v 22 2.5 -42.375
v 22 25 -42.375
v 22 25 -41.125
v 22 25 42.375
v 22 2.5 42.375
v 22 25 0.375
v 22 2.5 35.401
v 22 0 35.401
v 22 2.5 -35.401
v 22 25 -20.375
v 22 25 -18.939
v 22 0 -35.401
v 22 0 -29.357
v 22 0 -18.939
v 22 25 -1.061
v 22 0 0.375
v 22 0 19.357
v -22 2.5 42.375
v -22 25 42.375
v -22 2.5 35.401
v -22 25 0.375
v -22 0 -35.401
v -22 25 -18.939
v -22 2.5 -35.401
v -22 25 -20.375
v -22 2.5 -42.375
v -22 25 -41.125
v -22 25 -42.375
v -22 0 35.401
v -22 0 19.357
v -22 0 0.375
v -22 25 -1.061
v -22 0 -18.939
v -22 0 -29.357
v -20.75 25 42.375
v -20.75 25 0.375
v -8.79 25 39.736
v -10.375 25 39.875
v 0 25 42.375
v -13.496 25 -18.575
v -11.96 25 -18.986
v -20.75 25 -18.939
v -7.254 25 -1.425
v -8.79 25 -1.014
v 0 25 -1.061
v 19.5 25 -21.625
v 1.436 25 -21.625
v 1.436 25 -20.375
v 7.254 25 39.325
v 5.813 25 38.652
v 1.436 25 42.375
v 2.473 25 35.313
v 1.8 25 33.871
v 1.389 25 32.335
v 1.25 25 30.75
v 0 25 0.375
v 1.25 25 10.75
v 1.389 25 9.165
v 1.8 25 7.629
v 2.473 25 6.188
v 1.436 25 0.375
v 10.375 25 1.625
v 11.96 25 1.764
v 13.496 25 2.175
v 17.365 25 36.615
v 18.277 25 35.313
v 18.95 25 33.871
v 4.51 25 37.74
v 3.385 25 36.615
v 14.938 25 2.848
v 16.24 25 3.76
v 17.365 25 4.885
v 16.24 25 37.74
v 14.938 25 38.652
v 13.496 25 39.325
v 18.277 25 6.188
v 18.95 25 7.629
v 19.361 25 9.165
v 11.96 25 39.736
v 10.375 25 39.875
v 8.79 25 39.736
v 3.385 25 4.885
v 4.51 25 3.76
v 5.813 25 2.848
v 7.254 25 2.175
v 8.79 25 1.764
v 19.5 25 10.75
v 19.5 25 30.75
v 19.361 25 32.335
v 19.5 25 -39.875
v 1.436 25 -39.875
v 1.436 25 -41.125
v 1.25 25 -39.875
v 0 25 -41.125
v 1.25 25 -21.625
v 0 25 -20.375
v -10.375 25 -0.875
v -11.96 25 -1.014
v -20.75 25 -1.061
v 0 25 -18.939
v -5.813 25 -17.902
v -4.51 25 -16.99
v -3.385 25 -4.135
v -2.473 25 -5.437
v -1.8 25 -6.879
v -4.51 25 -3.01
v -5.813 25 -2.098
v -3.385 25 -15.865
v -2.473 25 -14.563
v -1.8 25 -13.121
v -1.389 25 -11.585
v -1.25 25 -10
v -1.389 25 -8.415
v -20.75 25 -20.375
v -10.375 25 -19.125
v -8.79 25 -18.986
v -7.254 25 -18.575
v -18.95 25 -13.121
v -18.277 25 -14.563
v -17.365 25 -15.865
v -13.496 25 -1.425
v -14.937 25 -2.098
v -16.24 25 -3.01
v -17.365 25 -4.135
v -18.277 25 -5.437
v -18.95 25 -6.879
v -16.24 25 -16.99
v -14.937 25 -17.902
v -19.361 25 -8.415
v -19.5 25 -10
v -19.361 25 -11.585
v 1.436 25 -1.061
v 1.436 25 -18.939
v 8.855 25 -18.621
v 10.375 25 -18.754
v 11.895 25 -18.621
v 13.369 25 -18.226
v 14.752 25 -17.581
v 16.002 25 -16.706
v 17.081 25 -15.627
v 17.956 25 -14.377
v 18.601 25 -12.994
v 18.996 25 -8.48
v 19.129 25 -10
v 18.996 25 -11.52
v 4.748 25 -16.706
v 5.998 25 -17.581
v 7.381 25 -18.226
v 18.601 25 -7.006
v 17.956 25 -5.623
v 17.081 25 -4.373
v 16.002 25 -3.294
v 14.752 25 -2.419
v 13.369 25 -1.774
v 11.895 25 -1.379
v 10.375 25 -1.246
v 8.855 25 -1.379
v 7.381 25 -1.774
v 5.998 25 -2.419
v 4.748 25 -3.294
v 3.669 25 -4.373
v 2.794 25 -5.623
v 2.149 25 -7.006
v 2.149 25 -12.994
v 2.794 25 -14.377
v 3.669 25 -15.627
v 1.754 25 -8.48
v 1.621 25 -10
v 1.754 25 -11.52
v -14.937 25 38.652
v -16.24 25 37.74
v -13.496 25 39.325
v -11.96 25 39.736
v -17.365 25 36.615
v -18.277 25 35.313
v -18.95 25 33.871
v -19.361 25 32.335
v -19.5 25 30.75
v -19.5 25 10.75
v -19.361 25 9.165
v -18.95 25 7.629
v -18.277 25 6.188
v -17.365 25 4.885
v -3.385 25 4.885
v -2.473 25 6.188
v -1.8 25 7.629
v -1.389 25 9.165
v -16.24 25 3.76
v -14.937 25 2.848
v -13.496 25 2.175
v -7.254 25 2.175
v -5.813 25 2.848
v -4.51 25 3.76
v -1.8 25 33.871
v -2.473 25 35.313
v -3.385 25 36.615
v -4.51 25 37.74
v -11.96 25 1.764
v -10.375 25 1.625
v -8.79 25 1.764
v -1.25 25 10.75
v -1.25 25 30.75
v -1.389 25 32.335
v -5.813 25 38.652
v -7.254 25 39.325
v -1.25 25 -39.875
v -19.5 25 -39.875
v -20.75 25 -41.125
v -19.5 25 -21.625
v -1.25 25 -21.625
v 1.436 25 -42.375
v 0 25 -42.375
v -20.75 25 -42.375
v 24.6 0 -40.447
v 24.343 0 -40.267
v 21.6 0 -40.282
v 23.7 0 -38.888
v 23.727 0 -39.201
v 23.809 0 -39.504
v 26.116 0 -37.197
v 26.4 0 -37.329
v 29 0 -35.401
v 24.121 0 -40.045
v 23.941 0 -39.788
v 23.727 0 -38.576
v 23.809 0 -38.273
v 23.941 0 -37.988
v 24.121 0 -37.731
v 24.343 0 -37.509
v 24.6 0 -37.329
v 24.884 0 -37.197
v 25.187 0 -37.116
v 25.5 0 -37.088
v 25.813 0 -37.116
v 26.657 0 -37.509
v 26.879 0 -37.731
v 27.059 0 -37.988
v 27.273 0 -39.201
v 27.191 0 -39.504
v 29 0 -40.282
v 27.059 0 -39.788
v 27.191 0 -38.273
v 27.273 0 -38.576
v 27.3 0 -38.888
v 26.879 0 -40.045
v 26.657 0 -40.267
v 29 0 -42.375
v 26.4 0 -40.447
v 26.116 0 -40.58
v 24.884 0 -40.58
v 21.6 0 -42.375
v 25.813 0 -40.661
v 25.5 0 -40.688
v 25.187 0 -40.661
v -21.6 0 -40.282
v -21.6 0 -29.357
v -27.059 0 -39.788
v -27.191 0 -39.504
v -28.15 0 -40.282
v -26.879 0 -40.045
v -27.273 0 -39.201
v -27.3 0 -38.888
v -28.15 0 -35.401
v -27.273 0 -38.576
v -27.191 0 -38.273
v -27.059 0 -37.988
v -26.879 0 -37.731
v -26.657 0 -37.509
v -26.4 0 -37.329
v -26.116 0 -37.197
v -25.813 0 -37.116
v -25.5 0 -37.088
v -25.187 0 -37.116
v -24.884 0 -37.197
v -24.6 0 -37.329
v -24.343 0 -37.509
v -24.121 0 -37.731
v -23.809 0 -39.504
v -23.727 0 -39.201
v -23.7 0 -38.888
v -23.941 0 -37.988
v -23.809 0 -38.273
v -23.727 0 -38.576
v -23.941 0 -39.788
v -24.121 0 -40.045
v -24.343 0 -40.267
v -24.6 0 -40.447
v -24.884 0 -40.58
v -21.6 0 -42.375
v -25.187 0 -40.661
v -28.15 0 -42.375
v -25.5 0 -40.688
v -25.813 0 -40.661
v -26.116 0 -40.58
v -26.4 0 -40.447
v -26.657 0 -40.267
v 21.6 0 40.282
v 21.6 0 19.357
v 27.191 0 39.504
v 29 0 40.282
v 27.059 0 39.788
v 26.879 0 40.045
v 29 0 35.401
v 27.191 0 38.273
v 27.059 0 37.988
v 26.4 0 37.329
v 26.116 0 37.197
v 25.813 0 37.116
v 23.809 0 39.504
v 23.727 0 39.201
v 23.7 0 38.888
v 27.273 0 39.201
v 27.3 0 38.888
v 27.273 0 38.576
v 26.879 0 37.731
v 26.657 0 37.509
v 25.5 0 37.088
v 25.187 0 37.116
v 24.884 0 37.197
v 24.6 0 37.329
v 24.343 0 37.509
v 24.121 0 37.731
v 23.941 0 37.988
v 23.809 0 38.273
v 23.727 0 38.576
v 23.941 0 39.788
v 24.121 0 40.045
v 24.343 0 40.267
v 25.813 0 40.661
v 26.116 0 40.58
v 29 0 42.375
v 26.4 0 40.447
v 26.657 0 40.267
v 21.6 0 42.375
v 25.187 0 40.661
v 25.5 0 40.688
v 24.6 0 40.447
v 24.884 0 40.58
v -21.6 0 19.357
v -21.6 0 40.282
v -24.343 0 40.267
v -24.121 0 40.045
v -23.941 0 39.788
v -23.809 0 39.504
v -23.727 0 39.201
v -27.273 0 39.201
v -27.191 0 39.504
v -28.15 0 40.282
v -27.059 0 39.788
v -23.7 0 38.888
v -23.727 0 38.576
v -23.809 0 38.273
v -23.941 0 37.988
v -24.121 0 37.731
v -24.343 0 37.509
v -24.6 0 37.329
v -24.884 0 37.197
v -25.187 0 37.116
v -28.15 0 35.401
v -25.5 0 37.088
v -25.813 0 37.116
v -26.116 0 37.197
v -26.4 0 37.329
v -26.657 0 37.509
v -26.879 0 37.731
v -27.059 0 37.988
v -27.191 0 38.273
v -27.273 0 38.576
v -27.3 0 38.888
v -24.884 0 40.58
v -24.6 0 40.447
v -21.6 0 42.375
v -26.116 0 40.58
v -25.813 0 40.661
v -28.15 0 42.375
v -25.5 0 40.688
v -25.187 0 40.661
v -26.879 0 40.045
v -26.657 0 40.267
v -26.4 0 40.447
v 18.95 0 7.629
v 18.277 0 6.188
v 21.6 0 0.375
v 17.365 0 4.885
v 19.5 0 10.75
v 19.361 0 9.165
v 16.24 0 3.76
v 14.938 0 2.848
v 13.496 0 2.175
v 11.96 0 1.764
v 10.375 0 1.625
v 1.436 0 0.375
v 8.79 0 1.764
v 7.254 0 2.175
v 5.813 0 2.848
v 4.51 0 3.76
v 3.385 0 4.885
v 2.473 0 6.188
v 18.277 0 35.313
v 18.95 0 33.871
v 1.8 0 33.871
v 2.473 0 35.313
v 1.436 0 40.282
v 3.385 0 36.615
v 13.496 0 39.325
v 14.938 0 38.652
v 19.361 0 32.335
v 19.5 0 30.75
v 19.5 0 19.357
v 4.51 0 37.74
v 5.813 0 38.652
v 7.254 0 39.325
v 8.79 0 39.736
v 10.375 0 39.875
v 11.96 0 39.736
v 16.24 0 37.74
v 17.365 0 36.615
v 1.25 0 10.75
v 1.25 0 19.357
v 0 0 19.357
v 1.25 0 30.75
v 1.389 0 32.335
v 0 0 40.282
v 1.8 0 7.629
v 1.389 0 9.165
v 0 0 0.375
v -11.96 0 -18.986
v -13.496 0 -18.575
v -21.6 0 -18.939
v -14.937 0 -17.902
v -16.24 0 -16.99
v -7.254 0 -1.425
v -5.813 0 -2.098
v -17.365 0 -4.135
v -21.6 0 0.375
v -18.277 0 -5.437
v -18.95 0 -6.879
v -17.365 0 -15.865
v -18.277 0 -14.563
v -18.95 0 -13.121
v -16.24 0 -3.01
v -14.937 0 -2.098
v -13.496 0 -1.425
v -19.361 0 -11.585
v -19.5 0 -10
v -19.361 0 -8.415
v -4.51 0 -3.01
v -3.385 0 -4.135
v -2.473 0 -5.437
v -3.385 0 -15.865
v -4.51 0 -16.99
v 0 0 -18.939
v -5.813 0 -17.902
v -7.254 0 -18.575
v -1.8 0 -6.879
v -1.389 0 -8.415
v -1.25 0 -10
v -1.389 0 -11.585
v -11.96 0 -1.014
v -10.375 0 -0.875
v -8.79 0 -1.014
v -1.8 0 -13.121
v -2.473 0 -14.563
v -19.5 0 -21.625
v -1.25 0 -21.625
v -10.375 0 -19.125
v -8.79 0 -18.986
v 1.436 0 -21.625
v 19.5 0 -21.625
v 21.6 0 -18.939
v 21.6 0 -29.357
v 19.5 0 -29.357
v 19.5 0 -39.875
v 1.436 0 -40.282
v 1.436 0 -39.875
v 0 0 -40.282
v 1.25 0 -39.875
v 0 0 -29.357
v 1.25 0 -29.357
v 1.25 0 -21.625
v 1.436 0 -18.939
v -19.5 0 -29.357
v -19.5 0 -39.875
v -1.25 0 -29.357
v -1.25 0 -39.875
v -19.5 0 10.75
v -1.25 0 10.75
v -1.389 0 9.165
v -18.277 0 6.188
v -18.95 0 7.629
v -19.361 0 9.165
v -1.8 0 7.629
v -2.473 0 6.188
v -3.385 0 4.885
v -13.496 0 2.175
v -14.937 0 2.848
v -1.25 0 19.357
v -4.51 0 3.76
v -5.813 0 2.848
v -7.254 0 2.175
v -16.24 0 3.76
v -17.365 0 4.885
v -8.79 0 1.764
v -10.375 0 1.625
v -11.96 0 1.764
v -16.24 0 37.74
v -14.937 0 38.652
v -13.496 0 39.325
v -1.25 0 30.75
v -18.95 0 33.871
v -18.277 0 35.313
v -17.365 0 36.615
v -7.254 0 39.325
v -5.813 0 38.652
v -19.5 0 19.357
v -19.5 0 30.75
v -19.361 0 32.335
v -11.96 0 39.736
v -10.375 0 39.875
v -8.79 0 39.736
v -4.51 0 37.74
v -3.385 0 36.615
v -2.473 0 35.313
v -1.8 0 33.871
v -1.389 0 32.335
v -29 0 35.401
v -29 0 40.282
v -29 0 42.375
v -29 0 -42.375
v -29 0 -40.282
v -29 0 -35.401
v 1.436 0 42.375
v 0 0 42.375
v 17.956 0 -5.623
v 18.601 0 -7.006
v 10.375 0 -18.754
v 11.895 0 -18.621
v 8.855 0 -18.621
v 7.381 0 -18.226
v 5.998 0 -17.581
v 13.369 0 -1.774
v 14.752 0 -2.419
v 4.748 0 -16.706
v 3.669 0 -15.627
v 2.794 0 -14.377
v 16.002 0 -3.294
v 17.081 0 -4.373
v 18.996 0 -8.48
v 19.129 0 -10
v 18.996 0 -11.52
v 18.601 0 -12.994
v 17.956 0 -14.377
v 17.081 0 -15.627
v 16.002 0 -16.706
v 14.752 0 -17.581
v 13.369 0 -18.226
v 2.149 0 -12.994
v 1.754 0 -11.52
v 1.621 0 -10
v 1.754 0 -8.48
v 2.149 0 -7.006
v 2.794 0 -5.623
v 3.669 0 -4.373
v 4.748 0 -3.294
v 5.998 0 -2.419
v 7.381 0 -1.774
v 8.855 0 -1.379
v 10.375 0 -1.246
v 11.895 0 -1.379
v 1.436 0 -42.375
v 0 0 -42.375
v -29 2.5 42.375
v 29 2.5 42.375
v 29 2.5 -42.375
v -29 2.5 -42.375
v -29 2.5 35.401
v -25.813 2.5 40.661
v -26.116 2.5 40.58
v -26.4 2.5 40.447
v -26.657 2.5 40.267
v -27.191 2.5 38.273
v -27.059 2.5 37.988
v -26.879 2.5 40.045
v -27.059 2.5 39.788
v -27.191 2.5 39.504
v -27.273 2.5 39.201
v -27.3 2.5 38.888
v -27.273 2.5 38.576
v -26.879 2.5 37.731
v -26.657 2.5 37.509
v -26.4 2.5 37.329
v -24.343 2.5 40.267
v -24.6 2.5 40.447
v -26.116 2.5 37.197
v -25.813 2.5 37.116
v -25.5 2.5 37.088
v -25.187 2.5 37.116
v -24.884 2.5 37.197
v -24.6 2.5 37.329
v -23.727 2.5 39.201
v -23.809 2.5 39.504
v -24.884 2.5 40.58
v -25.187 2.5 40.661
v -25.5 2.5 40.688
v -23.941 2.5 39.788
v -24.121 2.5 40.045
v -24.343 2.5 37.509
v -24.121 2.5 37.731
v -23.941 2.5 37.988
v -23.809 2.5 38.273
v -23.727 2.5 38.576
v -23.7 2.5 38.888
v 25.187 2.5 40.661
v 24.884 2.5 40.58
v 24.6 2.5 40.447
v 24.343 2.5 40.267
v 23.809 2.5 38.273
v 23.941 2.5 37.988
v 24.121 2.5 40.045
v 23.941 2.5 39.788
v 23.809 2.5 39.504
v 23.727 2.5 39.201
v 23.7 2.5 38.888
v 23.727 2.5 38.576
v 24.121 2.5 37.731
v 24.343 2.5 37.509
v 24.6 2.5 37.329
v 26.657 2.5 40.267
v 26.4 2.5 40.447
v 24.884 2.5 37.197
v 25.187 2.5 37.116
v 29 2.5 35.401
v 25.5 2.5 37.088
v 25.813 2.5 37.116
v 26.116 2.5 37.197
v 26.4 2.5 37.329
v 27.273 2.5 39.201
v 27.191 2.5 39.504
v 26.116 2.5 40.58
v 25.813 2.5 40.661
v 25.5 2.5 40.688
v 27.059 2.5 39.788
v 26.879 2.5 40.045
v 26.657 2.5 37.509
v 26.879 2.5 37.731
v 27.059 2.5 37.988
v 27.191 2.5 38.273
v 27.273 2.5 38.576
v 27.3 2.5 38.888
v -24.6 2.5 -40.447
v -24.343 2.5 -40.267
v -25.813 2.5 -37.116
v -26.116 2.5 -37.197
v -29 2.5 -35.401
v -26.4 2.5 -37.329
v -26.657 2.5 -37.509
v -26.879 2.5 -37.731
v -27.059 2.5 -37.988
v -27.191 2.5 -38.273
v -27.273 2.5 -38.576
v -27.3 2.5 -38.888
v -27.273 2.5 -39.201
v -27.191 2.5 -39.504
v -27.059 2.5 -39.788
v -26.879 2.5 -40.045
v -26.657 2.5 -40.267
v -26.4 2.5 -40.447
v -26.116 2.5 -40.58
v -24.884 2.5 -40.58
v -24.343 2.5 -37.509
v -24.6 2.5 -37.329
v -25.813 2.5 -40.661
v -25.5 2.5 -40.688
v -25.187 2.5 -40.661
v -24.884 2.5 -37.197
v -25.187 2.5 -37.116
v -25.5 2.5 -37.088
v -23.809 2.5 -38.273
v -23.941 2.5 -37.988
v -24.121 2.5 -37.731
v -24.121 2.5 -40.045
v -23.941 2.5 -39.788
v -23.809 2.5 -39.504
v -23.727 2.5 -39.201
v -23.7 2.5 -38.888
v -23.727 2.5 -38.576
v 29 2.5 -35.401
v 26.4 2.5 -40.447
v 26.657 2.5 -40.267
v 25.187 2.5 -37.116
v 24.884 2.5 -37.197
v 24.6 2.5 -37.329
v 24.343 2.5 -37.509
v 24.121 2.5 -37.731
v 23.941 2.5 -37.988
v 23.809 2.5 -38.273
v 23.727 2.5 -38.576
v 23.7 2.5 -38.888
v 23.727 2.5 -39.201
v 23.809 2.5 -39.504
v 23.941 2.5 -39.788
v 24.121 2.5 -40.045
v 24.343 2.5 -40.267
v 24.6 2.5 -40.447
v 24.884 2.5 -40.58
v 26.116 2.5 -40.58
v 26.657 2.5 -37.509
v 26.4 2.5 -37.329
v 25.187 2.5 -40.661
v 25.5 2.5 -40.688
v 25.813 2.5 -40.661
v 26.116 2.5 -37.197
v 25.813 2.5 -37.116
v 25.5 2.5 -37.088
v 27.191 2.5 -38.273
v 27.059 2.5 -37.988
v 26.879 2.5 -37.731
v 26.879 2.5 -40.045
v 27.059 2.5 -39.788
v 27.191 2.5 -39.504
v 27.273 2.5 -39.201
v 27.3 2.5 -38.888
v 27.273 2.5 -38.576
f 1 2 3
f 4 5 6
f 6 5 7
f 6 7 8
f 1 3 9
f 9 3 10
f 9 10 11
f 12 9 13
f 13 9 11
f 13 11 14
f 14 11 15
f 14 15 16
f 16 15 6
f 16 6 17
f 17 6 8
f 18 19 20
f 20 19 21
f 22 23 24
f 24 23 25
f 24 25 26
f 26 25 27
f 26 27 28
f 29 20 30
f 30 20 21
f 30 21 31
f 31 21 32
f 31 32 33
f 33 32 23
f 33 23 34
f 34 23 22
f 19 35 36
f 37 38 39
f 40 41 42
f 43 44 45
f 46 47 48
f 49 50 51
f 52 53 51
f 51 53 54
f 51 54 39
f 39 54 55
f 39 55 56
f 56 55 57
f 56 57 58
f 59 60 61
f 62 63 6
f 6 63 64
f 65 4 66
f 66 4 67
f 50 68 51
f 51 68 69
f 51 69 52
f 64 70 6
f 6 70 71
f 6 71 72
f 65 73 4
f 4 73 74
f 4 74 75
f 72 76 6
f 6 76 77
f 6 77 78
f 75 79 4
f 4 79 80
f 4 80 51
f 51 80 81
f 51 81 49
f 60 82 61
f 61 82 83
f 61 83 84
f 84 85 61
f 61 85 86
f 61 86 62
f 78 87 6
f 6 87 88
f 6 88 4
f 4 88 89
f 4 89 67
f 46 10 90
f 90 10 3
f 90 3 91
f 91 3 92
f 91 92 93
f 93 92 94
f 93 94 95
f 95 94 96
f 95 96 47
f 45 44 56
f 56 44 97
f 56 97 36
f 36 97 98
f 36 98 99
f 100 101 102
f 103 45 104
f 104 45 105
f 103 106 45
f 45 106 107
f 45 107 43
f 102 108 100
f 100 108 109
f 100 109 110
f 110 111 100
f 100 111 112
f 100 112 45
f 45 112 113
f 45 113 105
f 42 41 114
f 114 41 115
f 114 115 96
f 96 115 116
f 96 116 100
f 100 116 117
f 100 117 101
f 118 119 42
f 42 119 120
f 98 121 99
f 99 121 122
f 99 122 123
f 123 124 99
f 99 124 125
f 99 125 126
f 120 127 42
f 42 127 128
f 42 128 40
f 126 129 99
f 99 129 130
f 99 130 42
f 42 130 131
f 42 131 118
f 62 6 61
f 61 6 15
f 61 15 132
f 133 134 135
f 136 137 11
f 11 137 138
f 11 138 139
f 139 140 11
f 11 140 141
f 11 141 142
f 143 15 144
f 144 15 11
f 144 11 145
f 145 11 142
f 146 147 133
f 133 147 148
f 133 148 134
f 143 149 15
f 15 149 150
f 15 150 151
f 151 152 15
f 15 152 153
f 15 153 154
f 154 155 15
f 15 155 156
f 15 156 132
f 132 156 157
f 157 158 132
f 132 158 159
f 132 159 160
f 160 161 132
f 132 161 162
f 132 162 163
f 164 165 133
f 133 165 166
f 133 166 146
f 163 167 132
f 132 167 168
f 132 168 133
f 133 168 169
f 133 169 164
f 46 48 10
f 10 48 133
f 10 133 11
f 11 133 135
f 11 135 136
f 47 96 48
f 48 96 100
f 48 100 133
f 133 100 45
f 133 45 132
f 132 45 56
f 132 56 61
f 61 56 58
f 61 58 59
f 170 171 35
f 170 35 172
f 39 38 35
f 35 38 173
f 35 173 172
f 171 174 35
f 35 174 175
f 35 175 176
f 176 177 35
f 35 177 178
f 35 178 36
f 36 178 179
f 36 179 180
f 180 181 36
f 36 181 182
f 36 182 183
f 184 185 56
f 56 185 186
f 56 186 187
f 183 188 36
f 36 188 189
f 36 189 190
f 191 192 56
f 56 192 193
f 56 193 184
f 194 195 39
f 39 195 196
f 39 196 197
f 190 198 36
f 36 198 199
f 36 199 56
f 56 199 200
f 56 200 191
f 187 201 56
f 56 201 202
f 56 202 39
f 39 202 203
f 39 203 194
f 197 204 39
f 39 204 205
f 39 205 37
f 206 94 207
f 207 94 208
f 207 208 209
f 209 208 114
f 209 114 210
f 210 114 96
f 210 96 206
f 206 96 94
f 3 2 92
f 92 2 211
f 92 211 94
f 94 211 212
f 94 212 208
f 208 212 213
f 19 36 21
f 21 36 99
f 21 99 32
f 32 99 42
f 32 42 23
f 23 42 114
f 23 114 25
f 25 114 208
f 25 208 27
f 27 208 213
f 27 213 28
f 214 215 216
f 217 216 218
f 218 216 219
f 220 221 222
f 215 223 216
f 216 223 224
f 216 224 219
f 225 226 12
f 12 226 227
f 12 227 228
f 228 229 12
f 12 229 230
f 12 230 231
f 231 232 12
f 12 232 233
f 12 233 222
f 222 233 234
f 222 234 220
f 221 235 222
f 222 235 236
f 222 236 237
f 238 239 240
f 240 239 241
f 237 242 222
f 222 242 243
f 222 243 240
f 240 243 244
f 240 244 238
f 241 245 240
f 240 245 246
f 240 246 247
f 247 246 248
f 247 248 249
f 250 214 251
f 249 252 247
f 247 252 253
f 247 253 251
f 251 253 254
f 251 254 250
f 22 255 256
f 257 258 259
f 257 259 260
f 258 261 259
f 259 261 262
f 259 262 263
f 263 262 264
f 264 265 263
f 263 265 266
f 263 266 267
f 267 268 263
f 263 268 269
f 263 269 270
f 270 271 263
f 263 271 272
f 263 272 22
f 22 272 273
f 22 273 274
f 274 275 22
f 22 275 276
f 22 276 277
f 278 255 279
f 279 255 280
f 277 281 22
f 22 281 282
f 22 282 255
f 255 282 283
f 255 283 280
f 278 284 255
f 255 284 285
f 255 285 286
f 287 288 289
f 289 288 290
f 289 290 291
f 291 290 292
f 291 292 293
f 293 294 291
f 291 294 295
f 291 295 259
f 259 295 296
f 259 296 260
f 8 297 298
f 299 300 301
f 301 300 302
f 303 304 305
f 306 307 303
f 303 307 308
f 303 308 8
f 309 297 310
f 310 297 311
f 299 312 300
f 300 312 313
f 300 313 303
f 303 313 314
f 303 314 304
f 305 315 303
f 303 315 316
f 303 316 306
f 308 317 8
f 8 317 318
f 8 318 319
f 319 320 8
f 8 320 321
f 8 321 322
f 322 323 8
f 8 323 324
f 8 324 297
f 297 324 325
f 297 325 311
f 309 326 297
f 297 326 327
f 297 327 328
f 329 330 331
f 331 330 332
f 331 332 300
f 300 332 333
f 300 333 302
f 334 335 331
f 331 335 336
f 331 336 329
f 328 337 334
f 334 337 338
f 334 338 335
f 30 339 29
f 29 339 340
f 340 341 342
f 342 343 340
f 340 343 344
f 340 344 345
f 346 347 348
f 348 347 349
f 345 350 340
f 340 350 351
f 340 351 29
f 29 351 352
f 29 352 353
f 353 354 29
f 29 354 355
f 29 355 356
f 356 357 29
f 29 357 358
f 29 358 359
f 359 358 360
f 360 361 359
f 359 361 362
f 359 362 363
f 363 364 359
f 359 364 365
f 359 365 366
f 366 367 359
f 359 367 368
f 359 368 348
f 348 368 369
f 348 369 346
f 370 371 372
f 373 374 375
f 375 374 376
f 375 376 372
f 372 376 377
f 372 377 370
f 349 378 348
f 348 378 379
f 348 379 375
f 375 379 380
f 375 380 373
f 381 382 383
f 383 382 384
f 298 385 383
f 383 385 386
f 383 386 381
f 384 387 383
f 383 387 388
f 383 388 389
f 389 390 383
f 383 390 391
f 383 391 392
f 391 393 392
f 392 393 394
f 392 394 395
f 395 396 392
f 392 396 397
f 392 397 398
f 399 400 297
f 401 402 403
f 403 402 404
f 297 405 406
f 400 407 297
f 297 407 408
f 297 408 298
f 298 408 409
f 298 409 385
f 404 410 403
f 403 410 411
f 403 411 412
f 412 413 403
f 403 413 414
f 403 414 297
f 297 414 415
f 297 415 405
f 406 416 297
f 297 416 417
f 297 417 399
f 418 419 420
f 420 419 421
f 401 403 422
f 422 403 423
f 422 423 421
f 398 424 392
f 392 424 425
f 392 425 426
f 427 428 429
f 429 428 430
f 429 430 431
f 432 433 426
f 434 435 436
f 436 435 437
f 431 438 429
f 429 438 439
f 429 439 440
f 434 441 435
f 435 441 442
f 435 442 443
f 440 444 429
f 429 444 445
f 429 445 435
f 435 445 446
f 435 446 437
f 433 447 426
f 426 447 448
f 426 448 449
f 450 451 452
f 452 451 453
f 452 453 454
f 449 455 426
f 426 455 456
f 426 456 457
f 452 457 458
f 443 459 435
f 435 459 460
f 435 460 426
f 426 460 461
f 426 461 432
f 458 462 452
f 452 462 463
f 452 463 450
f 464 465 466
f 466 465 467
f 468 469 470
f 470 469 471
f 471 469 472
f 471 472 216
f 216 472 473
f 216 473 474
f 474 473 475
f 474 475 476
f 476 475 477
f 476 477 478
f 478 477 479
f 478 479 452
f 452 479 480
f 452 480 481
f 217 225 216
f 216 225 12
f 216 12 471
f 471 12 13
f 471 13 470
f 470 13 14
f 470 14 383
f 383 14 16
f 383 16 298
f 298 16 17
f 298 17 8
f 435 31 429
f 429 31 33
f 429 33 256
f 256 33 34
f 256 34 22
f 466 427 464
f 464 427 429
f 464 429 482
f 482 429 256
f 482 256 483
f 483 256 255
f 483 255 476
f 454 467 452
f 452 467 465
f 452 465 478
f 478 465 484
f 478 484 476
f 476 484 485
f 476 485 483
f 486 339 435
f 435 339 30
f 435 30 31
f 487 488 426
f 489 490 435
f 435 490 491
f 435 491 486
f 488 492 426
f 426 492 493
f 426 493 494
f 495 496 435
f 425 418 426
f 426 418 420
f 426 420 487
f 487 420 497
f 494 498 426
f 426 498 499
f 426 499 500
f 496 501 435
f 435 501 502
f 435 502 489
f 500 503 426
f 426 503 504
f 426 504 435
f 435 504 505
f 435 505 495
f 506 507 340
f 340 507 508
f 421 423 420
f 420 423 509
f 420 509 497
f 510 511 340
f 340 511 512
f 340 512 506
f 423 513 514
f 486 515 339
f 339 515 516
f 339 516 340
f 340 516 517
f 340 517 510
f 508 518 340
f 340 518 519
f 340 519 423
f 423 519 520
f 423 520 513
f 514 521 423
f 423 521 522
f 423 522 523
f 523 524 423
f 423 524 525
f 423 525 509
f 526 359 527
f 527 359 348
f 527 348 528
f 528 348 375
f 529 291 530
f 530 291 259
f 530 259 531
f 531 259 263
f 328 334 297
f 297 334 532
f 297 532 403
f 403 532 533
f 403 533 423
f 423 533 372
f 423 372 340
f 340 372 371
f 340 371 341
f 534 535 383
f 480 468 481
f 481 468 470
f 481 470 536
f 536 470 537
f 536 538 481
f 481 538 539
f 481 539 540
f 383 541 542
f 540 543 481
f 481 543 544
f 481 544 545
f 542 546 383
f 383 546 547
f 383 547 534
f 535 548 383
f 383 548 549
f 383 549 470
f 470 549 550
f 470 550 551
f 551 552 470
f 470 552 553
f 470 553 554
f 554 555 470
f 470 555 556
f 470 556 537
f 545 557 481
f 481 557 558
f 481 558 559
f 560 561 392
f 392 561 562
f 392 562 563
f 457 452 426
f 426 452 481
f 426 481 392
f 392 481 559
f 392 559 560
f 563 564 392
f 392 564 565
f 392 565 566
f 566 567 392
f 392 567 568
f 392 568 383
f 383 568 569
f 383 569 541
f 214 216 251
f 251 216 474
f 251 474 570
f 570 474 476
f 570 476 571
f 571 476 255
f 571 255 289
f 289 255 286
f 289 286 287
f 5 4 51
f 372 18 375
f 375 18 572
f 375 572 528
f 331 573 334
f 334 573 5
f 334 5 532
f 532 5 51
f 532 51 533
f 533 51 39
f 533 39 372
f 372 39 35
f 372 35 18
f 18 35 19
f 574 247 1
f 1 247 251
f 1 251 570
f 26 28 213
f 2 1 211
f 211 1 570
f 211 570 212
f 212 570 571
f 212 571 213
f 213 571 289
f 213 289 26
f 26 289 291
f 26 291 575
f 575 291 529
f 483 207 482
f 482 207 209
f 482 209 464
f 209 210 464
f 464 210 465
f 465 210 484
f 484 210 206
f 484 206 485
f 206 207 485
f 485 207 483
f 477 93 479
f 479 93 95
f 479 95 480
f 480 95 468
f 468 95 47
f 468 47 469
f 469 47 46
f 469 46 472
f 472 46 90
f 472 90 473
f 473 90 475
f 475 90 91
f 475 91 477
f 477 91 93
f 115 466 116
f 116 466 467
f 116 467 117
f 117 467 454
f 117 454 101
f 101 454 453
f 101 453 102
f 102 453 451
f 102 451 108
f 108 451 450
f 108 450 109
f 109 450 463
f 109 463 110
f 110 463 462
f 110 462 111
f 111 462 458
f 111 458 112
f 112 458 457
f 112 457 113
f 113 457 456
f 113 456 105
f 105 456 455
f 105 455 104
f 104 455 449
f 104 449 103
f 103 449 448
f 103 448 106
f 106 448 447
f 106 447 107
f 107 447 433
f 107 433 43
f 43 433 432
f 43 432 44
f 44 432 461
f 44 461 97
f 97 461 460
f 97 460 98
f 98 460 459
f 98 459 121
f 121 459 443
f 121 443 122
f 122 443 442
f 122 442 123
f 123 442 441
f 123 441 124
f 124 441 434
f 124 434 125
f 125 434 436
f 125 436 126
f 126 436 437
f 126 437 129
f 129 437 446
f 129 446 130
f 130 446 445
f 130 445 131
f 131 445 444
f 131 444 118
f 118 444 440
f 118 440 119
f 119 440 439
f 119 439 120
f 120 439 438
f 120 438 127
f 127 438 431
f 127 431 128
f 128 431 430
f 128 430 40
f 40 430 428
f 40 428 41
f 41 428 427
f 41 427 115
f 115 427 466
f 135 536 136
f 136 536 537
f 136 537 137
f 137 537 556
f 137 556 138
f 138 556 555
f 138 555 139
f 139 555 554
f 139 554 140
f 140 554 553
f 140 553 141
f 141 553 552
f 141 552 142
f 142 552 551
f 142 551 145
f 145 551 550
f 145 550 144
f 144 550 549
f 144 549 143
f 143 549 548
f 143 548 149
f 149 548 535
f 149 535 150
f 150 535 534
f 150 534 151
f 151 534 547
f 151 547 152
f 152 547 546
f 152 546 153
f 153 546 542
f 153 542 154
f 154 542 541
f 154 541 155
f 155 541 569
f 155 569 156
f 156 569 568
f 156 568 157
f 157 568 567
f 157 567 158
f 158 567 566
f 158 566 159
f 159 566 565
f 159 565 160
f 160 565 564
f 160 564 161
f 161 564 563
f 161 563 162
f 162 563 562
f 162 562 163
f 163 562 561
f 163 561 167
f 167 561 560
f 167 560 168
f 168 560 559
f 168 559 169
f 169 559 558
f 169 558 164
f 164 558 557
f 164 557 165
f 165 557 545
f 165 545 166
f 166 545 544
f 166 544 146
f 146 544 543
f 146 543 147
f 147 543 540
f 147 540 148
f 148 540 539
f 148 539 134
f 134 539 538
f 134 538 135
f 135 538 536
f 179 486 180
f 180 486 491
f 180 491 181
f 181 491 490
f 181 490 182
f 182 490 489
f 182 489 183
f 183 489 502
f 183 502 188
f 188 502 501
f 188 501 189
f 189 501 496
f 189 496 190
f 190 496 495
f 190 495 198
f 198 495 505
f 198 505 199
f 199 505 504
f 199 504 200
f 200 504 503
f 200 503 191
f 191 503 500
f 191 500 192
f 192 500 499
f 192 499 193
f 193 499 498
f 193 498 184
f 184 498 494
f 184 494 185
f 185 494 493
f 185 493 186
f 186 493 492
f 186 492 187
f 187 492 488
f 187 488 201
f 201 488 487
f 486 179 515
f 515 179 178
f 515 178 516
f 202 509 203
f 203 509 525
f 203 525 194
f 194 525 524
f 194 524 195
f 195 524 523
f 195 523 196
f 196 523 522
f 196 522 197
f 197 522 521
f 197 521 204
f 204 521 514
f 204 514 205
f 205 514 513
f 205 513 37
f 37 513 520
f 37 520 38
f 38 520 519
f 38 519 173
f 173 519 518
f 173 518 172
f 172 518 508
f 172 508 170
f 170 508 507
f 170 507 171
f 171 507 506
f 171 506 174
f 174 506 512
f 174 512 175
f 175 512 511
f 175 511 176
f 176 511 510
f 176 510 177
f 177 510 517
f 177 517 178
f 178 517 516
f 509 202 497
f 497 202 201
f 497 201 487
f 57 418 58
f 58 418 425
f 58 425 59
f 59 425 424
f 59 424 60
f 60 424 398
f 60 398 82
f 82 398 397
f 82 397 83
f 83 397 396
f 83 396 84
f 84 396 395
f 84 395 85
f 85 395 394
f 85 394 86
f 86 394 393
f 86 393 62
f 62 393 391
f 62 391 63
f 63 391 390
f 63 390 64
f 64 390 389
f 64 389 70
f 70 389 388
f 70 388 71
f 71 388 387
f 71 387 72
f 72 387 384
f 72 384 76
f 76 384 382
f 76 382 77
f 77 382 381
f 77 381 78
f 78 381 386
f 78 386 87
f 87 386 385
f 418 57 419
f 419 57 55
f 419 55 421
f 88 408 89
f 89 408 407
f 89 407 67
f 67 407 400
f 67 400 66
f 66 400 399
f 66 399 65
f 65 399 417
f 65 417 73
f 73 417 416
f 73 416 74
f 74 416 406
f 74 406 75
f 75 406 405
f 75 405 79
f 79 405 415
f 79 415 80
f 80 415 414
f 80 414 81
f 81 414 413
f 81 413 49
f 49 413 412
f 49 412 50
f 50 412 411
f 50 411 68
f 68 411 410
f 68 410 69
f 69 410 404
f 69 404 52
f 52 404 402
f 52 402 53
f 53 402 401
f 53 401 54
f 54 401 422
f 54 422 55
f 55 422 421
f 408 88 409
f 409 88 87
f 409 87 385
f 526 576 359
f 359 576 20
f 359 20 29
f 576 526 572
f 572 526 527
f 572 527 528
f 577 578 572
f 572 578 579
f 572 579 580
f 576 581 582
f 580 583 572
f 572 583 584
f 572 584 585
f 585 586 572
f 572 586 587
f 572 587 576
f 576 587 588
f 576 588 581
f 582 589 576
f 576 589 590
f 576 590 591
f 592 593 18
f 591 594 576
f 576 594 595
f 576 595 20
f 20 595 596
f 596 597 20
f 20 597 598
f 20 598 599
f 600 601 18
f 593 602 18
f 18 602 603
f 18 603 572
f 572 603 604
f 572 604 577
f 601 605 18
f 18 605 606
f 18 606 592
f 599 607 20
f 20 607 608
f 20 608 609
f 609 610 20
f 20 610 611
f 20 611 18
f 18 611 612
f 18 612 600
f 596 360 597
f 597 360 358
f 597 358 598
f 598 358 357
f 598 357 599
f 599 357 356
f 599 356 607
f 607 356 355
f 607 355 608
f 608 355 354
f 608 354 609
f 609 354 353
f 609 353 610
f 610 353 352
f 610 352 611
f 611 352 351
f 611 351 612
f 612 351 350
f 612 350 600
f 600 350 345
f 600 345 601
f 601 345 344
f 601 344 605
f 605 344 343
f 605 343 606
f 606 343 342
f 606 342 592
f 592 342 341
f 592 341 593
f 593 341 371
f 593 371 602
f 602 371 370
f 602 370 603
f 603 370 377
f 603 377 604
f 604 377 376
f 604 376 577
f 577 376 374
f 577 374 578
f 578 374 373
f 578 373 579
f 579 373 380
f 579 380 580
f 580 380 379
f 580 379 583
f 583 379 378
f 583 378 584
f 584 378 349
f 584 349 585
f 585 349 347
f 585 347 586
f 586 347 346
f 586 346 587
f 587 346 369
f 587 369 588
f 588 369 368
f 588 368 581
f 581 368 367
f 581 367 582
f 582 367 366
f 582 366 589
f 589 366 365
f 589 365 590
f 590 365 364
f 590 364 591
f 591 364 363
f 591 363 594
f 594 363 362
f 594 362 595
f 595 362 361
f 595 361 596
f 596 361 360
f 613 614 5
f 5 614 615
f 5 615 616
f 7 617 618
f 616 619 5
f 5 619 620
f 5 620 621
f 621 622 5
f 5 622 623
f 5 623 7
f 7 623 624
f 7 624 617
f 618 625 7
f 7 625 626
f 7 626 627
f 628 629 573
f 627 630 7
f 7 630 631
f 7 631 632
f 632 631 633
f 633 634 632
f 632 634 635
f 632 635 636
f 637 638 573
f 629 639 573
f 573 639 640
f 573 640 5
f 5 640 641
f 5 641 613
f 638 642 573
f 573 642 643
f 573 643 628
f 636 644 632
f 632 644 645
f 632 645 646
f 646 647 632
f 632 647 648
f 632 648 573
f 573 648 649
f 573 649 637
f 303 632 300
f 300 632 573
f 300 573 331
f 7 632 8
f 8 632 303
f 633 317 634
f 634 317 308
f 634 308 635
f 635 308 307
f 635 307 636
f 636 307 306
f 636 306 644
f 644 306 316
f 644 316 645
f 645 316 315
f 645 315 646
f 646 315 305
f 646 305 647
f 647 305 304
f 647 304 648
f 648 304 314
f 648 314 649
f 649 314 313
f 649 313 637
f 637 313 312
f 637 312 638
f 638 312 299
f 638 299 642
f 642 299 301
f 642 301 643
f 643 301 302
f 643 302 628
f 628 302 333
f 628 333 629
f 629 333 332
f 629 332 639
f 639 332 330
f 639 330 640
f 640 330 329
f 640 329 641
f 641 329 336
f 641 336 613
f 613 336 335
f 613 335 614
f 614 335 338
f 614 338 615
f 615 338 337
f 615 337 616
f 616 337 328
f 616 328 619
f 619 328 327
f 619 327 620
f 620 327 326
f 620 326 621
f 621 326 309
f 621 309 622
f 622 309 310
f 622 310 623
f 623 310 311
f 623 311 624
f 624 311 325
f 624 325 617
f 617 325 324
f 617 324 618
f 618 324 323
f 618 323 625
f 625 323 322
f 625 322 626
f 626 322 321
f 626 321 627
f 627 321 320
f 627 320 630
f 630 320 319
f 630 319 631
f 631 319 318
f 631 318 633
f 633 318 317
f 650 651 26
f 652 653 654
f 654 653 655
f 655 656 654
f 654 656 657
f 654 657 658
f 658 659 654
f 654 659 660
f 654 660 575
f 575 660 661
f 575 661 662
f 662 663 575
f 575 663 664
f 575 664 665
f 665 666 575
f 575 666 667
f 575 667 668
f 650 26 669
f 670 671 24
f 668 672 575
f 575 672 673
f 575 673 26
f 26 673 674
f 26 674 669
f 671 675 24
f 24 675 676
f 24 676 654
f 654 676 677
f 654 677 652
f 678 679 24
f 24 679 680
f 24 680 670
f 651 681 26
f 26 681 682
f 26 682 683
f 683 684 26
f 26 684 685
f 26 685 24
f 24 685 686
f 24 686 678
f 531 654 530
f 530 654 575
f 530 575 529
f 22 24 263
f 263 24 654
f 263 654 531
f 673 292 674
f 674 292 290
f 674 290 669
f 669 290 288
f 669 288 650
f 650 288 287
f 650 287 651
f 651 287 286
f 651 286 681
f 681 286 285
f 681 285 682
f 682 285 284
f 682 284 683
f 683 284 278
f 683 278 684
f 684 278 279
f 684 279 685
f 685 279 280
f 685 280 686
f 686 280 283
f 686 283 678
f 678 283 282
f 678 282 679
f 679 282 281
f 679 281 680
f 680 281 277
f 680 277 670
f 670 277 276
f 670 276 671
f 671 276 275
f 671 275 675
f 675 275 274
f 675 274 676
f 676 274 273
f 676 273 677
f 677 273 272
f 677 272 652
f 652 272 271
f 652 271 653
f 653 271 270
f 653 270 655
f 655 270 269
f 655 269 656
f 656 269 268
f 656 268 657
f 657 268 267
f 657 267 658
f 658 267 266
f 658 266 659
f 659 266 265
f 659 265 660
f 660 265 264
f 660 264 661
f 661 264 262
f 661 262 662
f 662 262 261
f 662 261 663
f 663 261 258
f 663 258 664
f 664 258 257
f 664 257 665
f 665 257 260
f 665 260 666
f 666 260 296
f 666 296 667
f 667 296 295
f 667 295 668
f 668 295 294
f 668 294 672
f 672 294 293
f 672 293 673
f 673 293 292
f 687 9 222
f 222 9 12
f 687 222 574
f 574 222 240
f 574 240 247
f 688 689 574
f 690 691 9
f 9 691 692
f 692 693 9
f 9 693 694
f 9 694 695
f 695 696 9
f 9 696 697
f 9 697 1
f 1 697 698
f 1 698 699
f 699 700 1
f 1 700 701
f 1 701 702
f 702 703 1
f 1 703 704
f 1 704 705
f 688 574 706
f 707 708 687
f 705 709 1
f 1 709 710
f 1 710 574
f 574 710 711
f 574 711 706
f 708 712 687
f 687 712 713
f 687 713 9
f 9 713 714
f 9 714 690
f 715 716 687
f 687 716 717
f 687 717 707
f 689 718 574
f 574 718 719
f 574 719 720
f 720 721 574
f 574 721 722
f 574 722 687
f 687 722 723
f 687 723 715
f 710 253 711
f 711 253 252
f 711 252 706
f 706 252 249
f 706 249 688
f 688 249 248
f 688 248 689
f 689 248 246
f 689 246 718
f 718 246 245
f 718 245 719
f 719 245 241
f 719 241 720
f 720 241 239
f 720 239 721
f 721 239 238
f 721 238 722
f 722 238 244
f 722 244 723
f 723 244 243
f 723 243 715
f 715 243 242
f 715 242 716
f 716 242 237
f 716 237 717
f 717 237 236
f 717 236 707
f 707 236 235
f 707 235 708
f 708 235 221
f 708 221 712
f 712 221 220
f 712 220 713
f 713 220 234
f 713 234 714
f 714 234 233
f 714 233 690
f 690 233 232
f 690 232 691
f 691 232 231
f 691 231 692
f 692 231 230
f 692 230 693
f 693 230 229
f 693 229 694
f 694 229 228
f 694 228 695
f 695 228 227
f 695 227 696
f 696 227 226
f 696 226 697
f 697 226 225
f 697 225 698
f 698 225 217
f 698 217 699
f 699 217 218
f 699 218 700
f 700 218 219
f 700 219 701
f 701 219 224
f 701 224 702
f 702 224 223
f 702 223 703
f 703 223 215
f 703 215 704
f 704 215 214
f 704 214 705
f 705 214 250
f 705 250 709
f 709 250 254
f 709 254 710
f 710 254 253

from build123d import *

# Parameters (mm, degrees)
SKIZZE1_W                       = 44
SKIZZE1_H                       = 84.75
SKIZZE1_R                       = 9.125
SKIZZE1_R_2                     = 8.753791834
SKIZZE1_W_2                     = 18.25
SKIZZE1_H_2                     = 18.25
AUFSATZ_LINEAR_AUSTRAGEN1_DEPTH = 25
SKIZZE2_W                       = 7
SKIZZE2_H                       = 6.973629197
SKIZZE2_R                       = 1.8
AUFSATZ_LINEAR_AUSTRAGEN2_DEPTH = 2.5
SPIEGELN2_COPY_1_SKETCH_W       = 7
SPIEGELN2_COPY_1_SKETCH_H       = 6.973629197
SPIEGELN2_COPY_1_SKETCH_R       = 1.8
SPIEGELN2_COPY_1_DEPTH          = 2.5


with BuildPart() as part:
    # Skizze1 → Aufsatz-Linear austragen1 (new body)
    with BuildSketch(Plane(origin=(0, 0, 0), x_dir=(1, 0, 0), z_dir=(0, 1, 0))):
        Rectangle(SKIZZE1_W, SKIZZE1_H)
        with Locations((-10.375, 10)):
            Circle(SKIZZE1_R, mode=Mode.SUBTRACT)
        with Locations((10.375, 10)):
            Circle(SKIZZE1_R_2, mode=Mode.SUBTRACT)
        with Locations((-10.375, 30.75)):
            Rectangle(SKIZZE1_W_2, SKIZZE1_H_2, mode=Mode.SUBTRACT)
        with Locations((10.375, 30.75)):
            Rectangle(SKIZZE1_W_2, SKIZZE1_H_2, mode=Mode.SUBTRACT)
        with BuildLine():
            Line((-1.25, -10.75), (-1.25, -30.75))
            ThreePointArc((-1.25, -30.75), (-10.375, -39.875), (-19.5, -30.75))
            Line((-19.5, -30.75), (-19.5, -10.75))
            ThreePointArc((-19.5, -10.75), (-10.375, -1.625), (-1.25, -10.75))
        make_face(mode=Mode.SUBTRACT)
        with BuildLine():
            Line((19.5, -10.75), (19.5, -30.75))
            ThreePointArc((19.5, -30.75), (10.375, -39.875), (1.25, -30.75))
            Line((1.25, -30.75), (1.25, -10.75))
            ThreePointArc((1.25, -10.75), (10.375, -1.625), (19.5, -10.75))
        make_face(mode=Mode.SUBTRACT)
    extrude(amount=AUFSATZ_LINEAR_AUSTRAGEN1_DEPTH)

    # Skizze2 → Aufsatz-Linear austragen2 (add)
    with BuildSketch(Plane.XZ):
        with Locations((-25.5, 38.888185401)):
            Rectangle(SKIZZE2_W, SKIZZE2_H)
        with Locations((-25.5, 38.888185402)):
            Circle(SKIZZE2_R, mode=Mode.SUBTRACT)
    aufsatz_linear_austragen2 = extrude(amount=-AUFSATZ_LINEAR_AUSTRAGEN2_DEPTH)

    # Spiegeln1: Aufsatz-Linear austragen2 across plane
    add(aufsatz_linear_austragen2.mirror(Plane(origin=(0, 0, 0), x_dir=(0, 0, 1), z_dir=(1, 0, 0))))

    # Spiegeln2: Aufsatz-Linear austragen2 across plane
    add(aufsatz_linear_austragen2.mirror(Plane.XY))

    # Spiegeln2 copy 1 sketch → Spiegeln2 copy 1 (add)
    with BuildSketch(Plane(origin=(0, 0, 0), x_dir=(-1, 0, 0), z_dir=(0, -1, 0))):
        with Locations((-25.5, 38.888185401)):
            Rectangle(SPIEGELN2_COPY_1_SKETCH_W, SPIEGELN2_COPY_1_SKETCH_H)
        with Locations((-25.5, 38.888185402)):
            Circle(SPIEGELN2_COPY_1_SKETCH_R, mode=Mode.SUBTRACT)
    extrude(amount=-SPIEGELN2_COPY_1_DEPTH)


solid = part.part
